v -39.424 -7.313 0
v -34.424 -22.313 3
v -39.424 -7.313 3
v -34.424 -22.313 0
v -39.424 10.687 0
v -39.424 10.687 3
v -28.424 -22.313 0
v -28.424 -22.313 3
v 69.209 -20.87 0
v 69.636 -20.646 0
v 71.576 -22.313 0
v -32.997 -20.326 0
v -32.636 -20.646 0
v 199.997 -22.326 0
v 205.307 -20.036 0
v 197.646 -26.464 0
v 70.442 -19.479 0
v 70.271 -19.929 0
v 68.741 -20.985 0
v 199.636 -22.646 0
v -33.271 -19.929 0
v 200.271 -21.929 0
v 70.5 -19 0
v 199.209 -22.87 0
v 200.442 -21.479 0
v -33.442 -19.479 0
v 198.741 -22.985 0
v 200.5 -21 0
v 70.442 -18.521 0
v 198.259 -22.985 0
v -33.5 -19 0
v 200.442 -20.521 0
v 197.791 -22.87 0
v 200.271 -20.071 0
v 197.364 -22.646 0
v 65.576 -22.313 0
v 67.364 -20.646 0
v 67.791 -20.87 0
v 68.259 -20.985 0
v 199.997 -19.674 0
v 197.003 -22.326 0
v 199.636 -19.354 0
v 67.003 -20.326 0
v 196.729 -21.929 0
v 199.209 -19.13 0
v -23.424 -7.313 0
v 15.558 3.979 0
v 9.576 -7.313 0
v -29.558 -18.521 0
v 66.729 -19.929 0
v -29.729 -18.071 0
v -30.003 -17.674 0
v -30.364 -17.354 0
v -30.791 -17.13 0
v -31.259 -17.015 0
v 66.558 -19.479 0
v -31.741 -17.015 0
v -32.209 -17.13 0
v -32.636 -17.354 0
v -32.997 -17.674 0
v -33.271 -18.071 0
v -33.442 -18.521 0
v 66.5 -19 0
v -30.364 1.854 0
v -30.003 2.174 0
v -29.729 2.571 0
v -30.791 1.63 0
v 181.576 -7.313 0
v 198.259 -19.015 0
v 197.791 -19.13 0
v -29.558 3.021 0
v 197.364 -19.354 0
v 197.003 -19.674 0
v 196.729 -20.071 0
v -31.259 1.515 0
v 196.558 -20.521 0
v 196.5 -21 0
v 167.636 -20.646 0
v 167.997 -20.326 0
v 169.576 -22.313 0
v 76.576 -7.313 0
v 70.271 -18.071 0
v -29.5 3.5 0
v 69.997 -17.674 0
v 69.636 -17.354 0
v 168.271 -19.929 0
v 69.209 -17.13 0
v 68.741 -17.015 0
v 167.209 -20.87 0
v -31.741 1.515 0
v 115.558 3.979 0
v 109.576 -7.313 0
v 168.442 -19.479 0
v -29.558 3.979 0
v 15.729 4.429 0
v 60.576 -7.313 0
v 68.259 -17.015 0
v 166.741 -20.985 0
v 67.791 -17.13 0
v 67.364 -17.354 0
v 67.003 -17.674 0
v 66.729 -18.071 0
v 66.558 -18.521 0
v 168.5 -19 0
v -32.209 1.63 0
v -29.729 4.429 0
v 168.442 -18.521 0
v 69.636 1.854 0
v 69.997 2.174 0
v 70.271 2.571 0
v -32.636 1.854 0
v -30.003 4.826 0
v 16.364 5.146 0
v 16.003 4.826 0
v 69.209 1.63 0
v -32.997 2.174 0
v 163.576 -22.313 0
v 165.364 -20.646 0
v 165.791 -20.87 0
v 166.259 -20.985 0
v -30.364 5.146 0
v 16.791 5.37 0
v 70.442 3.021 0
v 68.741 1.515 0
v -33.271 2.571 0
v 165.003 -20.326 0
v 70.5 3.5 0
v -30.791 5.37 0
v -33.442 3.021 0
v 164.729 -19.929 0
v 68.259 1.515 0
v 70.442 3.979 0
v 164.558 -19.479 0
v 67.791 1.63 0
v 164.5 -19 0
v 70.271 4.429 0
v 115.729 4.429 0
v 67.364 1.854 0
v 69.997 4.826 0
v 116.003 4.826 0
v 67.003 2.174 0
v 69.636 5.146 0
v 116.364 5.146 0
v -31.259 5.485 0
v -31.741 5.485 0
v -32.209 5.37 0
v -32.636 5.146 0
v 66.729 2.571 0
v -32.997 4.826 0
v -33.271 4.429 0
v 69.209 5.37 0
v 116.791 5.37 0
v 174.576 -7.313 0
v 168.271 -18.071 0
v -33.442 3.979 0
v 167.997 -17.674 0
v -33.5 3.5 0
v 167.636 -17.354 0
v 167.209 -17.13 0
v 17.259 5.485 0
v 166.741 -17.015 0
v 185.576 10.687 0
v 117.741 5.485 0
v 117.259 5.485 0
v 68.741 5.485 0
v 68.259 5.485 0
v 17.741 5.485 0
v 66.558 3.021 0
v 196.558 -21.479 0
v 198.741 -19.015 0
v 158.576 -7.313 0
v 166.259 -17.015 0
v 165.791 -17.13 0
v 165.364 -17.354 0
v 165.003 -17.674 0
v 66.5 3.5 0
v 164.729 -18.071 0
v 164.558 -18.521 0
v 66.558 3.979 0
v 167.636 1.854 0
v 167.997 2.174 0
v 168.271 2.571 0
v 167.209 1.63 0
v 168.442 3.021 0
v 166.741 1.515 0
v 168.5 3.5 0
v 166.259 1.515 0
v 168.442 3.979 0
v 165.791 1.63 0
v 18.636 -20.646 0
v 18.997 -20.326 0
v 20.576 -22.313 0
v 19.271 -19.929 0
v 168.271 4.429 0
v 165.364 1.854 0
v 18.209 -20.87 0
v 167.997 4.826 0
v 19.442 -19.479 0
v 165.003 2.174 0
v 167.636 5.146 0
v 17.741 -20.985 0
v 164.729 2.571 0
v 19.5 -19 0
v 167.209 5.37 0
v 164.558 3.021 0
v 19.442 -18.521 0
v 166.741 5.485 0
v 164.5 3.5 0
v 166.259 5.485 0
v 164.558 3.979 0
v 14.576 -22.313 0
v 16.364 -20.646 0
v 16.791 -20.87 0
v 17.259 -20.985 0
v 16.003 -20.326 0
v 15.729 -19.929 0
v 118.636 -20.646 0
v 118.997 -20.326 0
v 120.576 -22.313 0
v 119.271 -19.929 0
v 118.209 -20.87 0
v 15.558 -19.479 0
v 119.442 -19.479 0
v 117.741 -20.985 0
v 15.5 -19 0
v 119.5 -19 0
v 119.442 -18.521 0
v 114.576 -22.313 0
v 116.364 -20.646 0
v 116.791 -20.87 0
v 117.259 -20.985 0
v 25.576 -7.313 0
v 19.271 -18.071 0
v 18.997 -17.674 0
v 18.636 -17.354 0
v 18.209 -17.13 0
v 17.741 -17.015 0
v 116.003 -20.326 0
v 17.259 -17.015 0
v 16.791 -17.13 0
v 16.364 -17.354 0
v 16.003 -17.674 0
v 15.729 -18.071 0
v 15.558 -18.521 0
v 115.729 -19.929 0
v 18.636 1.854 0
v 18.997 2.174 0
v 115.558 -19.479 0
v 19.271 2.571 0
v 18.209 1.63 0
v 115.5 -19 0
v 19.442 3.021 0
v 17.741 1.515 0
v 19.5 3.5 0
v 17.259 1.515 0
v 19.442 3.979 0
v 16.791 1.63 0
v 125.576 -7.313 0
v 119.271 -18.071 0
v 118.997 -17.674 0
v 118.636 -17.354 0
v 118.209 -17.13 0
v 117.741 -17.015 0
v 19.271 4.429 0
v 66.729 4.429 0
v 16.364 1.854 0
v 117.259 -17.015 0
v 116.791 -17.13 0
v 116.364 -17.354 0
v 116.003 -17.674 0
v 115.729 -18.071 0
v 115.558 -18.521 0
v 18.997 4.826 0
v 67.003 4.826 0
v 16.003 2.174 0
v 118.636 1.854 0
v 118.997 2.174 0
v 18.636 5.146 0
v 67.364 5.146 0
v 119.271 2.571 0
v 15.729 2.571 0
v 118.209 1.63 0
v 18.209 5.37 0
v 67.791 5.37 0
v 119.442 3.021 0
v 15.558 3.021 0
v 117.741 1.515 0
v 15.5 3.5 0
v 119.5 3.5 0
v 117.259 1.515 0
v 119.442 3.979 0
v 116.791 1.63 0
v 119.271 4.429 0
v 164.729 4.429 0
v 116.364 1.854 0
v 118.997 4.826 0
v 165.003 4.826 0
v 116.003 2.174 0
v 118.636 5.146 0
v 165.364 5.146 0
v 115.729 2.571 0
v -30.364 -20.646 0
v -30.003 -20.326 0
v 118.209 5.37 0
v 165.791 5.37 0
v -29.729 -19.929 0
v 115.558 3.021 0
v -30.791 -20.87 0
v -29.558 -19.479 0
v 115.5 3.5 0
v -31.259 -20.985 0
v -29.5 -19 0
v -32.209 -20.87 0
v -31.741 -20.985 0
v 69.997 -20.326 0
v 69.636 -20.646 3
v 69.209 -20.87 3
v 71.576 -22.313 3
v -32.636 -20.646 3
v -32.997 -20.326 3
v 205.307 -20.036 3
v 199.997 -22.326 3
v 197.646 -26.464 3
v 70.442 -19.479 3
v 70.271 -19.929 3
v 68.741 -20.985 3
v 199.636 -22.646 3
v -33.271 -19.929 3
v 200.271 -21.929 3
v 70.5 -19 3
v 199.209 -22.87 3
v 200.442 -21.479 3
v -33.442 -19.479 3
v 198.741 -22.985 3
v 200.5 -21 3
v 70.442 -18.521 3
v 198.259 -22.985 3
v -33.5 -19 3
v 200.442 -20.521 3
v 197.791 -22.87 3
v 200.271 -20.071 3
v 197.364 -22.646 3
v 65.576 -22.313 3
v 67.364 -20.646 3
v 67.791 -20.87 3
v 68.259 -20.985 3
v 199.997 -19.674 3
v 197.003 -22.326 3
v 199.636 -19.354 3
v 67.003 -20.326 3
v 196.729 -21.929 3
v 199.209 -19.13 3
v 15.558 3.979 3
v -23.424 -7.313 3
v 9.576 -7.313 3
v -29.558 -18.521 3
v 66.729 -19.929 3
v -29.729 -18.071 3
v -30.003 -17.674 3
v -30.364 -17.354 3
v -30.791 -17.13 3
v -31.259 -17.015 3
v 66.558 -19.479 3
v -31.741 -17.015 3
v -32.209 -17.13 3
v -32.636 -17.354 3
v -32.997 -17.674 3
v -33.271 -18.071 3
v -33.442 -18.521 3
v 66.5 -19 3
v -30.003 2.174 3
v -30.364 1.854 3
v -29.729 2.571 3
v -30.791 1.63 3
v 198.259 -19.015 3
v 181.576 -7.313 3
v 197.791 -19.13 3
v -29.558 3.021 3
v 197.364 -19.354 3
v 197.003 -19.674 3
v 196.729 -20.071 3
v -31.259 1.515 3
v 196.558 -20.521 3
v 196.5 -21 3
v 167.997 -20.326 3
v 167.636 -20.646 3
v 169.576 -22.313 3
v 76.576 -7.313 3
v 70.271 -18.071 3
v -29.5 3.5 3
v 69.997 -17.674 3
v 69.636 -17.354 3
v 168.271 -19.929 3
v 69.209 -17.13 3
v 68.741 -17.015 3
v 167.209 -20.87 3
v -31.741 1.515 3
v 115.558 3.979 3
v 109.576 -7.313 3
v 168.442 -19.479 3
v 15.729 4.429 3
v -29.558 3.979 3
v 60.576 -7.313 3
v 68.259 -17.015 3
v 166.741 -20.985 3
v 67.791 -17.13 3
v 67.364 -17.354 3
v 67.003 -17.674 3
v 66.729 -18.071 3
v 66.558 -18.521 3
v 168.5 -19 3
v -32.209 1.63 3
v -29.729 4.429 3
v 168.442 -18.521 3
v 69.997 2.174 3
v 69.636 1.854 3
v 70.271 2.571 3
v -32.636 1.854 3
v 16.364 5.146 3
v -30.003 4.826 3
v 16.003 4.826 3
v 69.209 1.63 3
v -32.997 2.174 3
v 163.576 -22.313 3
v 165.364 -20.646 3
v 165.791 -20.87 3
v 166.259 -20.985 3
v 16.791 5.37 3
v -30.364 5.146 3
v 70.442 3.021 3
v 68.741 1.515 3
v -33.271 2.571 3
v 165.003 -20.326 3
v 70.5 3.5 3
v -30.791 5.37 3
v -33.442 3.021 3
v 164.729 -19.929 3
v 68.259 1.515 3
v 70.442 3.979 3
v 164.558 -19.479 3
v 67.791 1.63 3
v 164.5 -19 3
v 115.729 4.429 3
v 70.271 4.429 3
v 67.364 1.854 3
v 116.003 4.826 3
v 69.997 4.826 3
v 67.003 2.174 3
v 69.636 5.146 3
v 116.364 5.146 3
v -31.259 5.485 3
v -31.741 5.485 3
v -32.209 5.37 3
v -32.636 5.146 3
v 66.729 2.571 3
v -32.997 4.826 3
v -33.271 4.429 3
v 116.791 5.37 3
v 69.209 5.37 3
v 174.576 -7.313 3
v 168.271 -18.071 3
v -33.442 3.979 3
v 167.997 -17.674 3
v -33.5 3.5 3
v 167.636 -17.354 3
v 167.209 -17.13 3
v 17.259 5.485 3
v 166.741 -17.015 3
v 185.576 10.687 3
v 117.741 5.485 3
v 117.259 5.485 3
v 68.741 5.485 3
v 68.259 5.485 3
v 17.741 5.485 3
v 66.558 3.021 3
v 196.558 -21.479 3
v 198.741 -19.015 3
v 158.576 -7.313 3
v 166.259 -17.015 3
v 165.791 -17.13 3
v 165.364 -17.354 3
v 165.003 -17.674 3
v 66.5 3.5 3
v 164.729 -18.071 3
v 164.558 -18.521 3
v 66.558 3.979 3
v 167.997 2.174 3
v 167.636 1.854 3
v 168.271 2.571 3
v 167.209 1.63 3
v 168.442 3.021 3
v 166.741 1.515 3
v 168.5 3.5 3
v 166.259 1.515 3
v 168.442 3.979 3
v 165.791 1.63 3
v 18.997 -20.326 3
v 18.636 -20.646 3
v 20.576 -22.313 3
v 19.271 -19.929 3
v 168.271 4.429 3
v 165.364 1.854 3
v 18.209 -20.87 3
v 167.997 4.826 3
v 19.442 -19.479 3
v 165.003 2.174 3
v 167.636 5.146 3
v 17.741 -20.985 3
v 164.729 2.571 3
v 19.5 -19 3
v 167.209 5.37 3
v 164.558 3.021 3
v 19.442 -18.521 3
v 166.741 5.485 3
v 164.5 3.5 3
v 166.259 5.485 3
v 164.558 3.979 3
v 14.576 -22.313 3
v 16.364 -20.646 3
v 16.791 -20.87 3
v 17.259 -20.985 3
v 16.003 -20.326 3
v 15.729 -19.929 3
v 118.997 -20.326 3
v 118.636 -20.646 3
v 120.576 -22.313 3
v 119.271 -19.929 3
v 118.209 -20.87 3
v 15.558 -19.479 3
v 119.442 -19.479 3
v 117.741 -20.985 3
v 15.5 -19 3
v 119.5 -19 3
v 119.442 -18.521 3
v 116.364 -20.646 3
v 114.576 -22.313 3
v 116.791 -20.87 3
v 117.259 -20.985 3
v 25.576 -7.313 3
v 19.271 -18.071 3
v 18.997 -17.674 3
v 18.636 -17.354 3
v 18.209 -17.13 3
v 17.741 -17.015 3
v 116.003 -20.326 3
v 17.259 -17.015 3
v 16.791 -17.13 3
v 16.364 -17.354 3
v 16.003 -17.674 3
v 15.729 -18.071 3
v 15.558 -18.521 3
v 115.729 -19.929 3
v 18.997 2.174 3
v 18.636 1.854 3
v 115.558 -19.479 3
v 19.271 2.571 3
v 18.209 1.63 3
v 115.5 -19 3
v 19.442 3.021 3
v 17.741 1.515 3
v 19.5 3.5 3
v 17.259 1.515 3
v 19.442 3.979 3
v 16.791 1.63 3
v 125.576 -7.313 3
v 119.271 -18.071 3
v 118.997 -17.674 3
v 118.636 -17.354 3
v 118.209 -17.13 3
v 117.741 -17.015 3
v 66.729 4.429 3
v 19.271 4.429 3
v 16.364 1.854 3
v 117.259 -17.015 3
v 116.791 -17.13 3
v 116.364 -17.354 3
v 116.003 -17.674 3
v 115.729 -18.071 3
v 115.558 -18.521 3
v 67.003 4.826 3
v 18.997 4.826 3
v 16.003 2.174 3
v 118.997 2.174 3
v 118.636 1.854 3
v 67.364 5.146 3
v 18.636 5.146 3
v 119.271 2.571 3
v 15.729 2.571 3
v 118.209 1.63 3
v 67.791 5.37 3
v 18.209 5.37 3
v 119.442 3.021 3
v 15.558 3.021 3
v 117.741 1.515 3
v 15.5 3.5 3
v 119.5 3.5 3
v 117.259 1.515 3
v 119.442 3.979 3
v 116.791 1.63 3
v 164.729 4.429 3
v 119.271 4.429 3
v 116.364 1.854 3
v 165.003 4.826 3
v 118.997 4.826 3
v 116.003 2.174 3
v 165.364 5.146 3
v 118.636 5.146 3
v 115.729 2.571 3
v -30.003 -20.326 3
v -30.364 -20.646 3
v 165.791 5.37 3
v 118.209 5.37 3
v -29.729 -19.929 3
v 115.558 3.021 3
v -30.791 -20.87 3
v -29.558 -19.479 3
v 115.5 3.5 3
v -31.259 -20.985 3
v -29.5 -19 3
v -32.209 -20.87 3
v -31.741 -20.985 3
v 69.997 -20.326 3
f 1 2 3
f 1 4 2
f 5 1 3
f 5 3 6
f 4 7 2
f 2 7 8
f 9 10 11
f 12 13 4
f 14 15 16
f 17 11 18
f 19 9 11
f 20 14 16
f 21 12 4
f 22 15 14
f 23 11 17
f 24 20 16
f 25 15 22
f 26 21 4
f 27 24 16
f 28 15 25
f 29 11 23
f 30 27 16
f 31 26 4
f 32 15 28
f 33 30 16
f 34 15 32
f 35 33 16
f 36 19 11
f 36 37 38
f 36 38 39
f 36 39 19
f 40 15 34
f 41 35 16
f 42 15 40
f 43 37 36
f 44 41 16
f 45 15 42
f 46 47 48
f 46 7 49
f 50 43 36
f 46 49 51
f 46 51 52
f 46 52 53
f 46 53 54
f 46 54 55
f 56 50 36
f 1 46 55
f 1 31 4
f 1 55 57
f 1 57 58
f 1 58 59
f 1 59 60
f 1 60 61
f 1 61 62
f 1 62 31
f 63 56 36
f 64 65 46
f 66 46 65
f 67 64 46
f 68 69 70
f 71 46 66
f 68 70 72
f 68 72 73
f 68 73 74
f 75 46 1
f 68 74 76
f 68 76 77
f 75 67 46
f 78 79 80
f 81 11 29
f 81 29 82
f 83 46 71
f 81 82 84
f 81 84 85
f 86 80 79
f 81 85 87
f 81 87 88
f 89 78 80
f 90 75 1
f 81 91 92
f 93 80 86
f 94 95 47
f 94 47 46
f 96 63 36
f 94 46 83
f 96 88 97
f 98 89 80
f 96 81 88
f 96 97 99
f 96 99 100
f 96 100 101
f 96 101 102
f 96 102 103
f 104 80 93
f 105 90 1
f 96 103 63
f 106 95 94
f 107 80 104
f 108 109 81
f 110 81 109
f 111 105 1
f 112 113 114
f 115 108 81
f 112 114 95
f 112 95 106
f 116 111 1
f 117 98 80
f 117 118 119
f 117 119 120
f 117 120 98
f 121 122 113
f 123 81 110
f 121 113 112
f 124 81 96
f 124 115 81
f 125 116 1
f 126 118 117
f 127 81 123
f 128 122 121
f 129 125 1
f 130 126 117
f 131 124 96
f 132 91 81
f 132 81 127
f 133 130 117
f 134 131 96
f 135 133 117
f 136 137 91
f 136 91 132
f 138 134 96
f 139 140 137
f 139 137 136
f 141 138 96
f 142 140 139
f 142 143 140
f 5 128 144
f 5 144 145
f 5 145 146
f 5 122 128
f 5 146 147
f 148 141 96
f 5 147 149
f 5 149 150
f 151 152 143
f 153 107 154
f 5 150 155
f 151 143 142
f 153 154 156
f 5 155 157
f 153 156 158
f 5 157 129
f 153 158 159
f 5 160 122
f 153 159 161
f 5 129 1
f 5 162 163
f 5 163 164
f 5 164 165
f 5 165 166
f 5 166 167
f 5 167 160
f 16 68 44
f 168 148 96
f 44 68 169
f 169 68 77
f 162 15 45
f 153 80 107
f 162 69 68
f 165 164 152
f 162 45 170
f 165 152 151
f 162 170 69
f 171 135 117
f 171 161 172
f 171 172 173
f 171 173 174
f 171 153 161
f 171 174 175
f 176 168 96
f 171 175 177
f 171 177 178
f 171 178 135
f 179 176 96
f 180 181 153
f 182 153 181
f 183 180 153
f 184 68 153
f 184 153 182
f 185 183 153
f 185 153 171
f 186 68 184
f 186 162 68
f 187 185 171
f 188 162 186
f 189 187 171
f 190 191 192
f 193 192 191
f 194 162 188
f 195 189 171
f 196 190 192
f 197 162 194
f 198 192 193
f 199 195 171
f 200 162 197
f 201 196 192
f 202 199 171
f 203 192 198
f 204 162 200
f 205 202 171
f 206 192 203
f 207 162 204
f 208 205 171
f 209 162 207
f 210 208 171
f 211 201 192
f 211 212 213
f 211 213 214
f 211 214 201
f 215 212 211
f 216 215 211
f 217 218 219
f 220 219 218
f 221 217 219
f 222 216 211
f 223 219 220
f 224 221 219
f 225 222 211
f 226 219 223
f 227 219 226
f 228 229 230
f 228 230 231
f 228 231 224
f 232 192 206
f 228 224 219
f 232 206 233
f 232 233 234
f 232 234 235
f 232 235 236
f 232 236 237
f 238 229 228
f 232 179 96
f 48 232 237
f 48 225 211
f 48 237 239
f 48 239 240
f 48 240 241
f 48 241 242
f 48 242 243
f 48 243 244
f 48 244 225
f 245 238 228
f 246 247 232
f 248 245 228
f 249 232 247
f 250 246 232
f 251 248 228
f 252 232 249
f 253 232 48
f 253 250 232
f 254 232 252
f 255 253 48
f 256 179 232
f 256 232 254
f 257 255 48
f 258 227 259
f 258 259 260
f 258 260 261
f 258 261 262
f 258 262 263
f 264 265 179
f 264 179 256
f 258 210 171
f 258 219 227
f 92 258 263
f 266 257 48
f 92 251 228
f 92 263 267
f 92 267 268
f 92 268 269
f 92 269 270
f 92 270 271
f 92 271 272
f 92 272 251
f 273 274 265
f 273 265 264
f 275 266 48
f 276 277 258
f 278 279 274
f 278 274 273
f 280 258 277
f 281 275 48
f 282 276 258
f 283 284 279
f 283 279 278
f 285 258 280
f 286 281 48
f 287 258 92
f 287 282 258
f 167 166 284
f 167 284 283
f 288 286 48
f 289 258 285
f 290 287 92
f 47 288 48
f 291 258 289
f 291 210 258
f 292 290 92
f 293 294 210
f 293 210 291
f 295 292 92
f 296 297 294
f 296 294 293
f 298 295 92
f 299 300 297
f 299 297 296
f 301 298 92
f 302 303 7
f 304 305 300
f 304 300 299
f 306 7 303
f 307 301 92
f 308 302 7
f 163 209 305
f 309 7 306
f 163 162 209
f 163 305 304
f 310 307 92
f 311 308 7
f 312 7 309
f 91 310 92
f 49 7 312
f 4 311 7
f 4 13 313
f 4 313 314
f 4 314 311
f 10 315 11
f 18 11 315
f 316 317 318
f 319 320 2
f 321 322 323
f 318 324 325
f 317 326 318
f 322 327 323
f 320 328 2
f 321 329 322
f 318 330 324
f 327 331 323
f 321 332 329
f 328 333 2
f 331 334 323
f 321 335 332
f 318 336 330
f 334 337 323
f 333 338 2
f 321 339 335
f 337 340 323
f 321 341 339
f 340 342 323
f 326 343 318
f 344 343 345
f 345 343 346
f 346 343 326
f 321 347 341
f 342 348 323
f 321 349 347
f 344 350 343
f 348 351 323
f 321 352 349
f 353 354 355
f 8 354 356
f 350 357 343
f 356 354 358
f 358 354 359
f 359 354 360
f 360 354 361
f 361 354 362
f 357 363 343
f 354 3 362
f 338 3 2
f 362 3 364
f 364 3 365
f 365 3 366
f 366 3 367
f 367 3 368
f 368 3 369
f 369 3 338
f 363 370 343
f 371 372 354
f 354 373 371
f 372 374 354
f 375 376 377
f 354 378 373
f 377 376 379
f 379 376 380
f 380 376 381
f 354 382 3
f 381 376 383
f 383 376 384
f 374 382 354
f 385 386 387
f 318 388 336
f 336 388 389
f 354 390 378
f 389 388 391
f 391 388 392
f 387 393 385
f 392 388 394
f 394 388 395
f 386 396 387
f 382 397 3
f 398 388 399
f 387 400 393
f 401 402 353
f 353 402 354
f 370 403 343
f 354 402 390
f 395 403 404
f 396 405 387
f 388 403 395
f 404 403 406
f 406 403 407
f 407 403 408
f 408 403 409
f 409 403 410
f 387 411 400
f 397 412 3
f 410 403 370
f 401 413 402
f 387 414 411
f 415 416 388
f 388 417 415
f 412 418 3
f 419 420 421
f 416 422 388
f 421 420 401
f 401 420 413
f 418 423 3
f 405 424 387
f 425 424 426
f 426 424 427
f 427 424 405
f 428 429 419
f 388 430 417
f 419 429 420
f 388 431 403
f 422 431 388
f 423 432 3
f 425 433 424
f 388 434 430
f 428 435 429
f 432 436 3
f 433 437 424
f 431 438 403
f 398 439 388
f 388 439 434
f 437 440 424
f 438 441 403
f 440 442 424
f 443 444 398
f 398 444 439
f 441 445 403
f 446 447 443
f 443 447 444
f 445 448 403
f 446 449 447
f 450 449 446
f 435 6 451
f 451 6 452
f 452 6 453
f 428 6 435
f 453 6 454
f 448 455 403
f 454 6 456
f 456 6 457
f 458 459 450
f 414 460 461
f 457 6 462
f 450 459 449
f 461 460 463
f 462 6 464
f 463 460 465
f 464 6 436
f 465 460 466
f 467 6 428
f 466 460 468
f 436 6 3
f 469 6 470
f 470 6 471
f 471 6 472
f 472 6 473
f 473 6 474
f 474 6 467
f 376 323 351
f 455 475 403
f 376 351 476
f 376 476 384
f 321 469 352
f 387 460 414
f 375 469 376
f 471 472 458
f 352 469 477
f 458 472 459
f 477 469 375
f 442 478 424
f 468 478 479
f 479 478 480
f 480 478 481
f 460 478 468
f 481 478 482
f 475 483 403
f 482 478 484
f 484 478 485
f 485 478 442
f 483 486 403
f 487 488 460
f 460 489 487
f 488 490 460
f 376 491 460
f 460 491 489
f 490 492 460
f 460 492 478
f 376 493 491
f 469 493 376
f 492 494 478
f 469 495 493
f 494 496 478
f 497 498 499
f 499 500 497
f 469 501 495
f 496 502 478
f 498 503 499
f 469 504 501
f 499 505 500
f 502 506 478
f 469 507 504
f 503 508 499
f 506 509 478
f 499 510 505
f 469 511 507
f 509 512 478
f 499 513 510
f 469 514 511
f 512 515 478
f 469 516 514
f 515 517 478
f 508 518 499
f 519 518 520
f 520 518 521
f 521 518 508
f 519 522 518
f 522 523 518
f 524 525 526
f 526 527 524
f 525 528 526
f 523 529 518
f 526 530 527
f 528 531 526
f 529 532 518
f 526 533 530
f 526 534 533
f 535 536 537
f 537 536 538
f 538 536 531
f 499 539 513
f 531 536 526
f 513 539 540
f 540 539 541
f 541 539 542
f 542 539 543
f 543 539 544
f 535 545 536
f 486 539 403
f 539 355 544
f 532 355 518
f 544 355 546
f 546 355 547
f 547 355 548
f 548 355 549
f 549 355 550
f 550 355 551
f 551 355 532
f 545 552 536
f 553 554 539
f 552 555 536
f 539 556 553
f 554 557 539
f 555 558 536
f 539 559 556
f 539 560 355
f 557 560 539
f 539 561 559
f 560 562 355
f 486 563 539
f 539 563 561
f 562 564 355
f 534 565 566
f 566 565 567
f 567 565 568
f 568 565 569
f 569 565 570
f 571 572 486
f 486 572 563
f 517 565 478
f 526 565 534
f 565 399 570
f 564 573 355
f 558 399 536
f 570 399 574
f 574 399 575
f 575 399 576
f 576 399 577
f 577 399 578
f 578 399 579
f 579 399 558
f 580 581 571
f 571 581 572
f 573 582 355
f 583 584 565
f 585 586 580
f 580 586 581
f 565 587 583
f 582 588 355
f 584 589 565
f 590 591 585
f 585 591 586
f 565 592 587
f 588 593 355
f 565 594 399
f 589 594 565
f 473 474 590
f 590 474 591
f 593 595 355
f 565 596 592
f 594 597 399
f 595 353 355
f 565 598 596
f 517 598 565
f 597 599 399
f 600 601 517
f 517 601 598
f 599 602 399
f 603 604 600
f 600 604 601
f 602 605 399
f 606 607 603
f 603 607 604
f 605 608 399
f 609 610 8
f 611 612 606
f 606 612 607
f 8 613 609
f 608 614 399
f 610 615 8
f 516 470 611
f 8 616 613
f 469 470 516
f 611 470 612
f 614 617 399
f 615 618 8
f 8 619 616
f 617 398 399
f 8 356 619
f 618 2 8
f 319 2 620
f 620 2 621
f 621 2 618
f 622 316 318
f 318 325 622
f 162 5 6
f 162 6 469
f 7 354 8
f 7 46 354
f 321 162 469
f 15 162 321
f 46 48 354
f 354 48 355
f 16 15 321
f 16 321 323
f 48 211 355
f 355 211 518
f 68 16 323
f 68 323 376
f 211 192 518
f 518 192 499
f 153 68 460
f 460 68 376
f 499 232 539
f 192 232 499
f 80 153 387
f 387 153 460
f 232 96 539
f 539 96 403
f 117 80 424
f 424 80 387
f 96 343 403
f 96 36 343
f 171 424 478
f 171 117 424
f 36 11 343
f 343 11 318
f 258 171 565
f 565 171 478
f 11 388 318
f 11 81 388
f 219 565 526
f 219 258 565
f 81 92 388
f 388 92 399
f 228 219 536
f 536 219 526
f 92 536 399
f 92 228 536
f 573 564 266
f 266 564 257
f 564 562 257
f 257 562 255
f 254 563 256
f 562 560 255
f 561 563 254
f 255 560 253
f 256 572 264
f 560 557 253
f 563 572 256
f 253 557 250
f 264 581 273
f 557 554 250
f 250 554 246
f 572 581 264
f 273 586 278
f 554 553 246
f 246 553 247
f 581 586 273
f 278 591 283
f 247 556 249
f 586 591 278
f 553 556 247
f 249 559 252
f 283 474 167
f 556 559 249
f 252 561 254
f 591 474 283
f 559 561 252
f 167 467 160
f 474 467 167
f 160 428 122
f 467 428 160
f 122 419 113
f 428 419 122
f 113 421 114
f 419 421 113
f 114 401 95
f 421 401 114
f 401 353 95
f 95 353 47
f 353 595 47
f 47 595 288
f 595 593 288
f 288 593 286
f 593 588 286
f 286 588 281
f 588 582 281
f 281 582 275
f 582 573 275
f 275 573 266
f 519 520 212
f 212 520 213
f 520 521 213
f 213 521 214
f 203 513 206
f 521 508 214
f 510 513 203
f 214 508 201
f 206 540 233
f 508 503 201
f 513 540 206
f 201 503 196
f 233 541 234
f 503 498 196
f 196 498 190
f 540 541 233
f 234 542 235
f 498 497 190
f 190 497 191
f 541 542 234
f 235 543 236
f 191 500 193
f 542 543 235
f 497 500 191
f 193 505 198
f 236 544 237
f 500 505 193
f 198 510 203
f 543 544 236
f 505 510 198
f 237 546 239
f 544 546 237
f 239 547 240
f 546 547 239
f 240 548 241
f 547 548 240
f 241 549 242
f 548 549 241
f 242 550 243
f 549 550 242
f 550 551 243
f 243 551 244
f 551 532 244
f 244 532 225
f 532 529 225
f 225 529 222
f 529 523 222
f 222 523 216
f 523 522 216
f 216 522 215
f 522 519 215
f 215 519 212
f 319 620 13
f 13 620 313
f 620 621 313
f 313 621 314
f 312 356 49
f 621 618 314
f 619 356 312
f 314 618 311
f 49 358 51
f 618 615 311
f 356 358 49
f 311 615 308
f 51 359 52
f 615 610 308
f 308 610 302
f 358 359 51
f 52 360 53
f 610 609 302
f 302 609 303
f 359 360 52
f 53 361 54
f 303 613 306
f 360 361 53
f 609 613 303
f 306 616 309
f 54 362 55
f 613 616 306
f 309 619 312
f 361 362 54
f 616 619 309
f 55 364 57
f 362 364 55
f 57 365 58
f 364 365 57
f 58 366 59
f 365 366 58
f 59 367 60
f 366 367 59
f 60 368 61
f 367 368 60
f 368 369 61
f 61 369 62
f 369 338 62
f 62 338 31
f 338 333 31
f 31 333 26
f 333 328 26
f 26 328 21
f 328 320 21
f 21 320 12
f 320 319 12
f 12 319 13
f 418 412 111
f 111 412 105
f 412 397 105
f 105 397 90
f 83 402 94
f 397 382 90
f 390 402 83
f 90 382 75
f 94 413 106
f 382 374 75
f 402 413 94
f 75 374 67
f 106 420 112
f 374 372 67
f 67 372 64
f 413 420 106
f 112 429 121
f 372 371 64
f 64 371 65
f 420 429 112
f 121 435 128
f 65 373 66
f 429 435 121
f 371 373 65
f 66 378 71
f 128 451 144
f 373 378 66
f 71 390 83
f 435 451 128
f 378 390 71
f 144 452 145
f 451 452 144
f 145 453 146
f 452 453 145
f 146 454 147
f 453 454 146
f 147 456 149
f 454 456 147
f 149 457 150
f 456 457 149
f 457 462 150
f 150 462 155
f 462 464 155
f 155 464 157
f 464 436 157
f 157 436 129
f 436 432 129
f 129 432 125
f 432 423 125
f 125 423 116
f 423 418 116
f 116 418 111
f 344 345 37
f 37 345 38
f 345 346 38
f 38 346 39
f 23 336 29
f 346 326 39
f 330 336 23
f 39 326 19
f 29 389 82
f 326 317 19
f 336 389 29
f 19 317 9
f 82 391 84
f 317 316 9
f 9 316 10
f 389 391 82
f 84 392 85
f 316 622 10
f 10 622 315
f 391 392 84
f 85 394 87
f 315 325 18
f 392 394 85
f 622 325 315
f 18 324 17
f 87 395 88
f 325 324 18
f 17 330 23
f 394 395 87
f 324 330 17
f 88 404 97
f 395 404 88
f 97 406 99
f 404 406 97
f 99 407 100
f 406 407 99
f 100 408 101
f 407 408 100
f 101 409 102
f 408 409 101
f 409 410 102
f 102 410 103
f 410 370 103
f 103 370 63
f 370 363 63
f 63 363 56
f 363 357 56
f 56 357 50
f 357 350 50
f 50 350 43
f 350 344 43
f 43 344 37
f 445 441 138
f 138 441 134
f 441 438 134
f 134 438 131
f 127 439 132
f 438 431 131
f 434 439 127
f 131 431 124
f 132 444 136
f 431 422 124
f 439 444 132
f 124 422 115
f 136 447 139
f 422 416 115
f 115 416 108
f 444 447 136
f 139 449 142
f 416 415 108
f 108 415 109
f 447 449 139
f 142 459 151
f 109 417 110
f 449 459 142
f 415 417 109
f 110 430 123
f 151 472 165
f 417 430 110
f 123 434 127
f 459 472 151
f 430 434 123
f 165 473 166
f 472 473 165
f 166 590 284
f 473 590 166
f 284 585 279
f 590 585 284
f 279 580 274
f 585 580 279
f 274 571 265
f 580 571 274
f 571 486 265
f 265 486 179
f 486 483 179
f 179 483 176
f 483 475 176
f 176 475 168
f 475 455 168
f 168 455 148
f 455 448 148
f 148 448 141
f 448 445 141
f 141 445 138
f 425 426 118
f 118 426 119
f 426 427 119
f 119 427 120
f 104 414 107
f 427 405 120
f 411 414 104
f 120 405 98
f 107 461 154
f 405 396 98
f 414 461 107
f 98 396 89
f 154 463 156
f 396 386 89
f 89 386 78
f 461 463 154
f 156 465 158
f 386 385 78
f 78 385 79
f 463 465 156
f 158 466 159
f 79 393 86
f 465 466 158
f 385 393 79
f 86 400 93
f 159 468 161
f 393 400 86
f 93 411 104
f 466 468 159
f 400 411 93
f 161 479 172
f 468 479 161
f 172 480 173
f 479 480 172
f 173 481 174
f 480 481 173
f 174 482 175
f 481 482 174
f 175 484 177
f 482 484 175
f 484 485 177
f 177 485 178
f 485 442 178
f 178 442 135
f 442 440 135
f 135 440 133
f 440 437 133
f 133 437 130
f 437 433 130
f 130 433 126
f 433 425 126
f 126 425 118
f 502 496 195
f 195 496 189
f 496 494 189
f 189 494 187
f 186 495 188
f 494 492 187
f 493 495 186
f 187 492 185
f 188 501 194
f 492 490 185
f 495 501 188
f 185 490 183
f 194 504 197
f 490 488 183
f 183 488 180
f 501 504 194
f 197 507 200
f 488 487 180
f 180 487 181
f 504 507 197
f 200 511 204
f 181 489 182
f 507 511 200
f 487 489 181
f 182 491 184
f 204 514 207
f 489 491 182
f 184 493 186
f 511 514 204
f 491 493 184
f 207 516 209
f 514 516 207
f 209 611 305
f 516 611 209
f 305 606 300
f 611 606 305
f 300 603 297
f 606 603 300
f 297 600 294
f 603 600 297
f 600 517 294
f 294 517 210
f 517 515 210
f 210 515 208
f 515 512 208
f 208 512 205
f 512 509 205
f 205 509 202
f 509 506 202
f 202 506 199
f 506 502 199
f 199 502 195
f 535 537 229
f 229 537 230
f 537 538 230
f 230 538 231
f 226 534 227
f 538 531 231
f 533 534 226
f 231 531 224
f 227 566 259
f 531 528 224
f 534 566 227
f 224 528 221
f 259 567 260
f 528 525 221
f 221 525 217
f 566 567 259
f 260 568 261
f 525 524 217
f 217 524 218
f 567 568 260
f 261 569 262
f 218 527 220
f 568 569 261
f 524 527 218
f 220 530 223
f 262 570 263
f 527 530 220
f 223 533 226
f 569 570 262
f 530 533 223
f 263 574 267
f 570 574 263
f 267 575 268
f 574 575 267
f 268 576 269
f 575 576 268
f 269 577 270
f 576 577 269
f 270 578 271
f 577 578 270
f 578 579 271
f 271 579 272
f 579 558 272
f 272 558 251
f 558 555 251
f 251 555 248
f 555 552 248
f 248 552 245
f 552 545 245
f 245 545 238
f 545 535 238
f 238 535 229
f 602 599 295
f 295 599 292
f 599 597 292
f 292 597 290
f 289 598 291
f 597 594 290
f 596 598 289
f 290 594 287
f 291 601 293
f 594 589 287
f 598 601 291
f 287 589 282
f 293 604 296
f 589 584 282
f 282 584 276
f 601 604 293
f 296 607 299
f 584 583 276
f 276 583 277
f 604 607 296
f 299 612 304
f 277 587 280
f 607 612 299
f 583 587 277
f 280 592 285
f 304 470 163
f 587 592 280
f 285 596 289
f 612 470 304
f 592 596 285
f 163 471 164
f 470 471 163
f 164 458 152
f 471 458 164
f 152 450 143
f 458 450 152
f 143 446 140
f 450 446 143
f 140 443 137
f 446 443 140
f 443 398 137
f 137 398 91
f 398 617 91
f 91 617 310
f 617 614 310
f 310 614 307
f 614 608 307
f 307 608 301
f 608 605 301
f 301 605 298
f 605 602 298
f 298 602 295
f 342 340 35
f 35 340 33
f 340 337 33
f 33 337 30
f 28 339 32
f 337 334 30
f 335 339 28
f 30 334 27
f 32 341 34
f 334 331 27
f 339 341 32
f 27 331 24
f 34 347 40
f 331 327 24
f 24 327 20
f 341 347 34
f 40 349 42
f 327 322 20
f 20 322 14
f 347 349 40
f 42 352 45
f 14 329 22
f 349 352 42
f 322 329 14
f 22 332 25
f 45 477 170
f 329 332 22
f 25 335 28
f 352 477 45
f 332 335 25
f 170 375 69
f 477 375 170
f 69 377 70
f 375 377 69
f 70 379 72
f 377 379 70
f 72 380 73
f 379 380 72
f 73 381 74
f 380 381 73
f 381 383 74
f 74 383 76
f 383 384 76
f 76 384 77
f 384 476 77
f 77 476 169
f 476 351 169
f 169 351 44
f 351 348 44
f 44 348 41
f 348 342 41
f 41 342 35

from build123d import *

# Parameters (mm, degrees)
CYLINDER007_R     = 2
CYLINDER007_DEPTH = 10
CYLINDER008_R     = 2
CYLINDER008_DEPTH = 10
CYLINDER009_R     = 2
CYLINDER009_DEPTH = 10
CYLINDER010_R     = 2
CYLINDER010_DEPTH = 10
CYLINDER006_R     = 2
CYLINDER006_DEPTH = 10
CYLINDER001_R     = 2
CYLINDER001_DEPTH = 10
CYLINDER005_R     = 2
CYLINDER005_DEPTH = 10
CYLINDER004_R     = 2
CYLINDER004_DEPTH = 10
CYLINDER003_R     = 2
CYLINDER003_DEPTH = 10
CYLINDER002_R     = 2
CYLINDER002_DEPTH = 10
CYLINDER_R        = 2
CYLINDER_DEPTH    = 10
PAD_DEPTH         = 3


with BuildPart() as cylinder007:
    # Cylinder007 → Cylinder007 (new body)
    with BuildSketch(Plane(origin=(117.5, 3.5, -3), x_dir=(1, 0, 0), z_dir=(0, 0, 1))):
        Circle(CYLINDER007_R)
    extrude(amount=CYLINDER007_DEPTH)


with BuildPart() as cylinder008:
    # Cylinder008 → Cylinder008 (new body)
    with BuildSketch(Plane(origin=(68.5, 3.5, -3), x_dir=(1, 0, 0), z_dir=(0, 0, 1))):
        Circle(CYLINDER008_R)
    extrude(amount=CYLINDER008_DEPTH)


with BuildPart() as cylinder009:
    # Cylinder009 → Cylinder009 (new body)
    with BuildSketch(Plane(origin=(17.5, 3.5, -3), x_dir=(1, 0, 0), z_dir=(0, 0, 1))):
        Circle(CYLINDER009_R)
    extrude(amount=CYLINDER009_DEPTH)


with BuildPart() as cylinder010:
    # Cylinder010 → Cylinder010 (new body)
    with BuildSketch(Plane(origin=(-31.5, 3.5, -3), x_dir=(1, 0, 0), z_dir=(0, 0, 1))):
        Circle(CYLINDER010_R)
    extrude(amount=CYLINDER010_DEPTH)


with BuildPart() as cylinder006:
    # Cylinder006 → Cylinder006 (new body)
    with BuildSketch(Plane(origin=(166.5, 3.5, -3), x_dir=(1, 0, 0), z_dir=(0, 0, 1))):
        Circle(CYLINDER006_R)
    extrude(amount=CYLINDER006_DEPTH)


with BuildPart() as cylinder001:
    # Cylinder001 → Cylinder001 (new body)
    with BuildSketch(Plane(origin=(166.5, -19, -3), x_dir=(1, 0, 0), z_dir=(0, 0, 1))):
        Circle(CYLINDER001_R)
    extrude(amount=CYLINDER001_DEPTH)


with BuildPart() as cylinder005:
    # Cylinder005 → Cylinder005 (new body)
    with BuildSketch(Plane(origin=(198.5, -21, -3), x_dir=(1, 0, 0), z_dir=(0, 0, 1))):
        Circle(CYLINDER005_R)
    extrude(amount=CYLINDER005_DEPTH)


with BuildPart() as cylinder004:
    # Cylinder004 → Cylinder004 (new body)
    with BuildSketch(Plane(origin=(-31.5, -19, -3), x_dir=(1, 0, 0), z_dir=(0, 0, 1))):
        Circle(CYLINDER004_R)
    extrude(amount=CYLINDER004_DEPTH)


with BuildPart() as cylinder003:
    # Cylinder003 → Cylinder003 (new body)
    with BuildSketch(Plane(origin=(68.5, -19, -3), x_dir=(1, 0, 0), z_dir=(0, 0, 1))):
        Circle(CYLINDER003_R)
    extrude(amount=CYLINDER003_DEPTH)


with BuildPart() as cylinder002:
    # Cylinder002 → Cylinder002 (new body)
    with BuildSketch(Plane(origin=(117.5, -19, -3), x_dir=(1, 0, 0), z_dir=(0, 0, 1))):
        Circle(CYLINDER002_R)
    extrude(amount=CYLINDER002_DEPTH)


with BuildPart() as cylinder:
    # Cylinder → Cylinder (new body)
    with BuildSketch(Plane(origin=(17.5, -19, -3), x_dir=(1, 0, 0), z_dir=(0, 0, 1))):
        Circle(CYLINDER_R)
    extrude(amount=CYLINDER_DEPTH)


with BuildPart() as cut010:
    # Sketch → Pad (new body)
    with BuildSketch(Plane.XY):
        Polygon((-39.423556, 10.687065), (185.576444, 10.687065), (205.306578, -20.03617), (197.646134, -26.464046), (181.576444, -7.312935), (174.576444, -7.312935), (169.576444, -22.312935), (163.576444, -22.312935), (158.576444, -7.312935), (125.576444, -7.312935), (120.576444, -22.312935), (114.576444, -22.312935), (109.576444, -7.312935), (76.576444, -7.312935), (71.576444, -22.312935), (65.576444, -22.312935), (60.576444, -7.312935), (25.576444, -7.312935), (20.576444, -22.312935), (14.576444, -22.312935), (9.576444, -7.312935), (-23.423556, -7.312935), (-28.423556, -22.312935), (-34.423556, -22.312935), (-39.423556, -7.312935), align=None)
    extrude(amount=PAD_DEPTH)

    # Cut: cut Cylinder
    add(cylinder.part, mode=Mode.SUBTRACT)

    # Cut001: cut Cylinder002
    add(cylinder002.part, mode=Mode.SUBTRACT)

    # Cut002: cut Cylinder003
    add(cylinder003.part, mode=Mode.SUBTRACT)

    # Cut003: cut Cylinder004
    add(cylinder004.part, mode=Mode.SUBTRACT)

    # Cut004: cut Cylinder005
    add(cylinder005.part, mode=Mode.SUBTRACT)

    # Cut005: cut Cylinder001
    add(cylinder001.part, mode=Mode.SUBTRACT)

    # Cut006: cut Cylinder006
    add(cylinder006.part, mode=Mode.SUBTRACT)

    # Cut007: cut Cylinder010
    add(cylinder010.part, mode=Mode.SUBTRACT)

    # Cut008: cut Cylinder009
    add(cylinder009.part, mode=Mode.SUBTRACT)

    # Cut009: cut Cylinder008
    add(cylinder008.part, mode=Mode.SUBTRACT)

    # Cut010: cut Cylinder007
    add(cylinder007.part, mode=Mode.SUBTRACT)


solid = cut010.part
